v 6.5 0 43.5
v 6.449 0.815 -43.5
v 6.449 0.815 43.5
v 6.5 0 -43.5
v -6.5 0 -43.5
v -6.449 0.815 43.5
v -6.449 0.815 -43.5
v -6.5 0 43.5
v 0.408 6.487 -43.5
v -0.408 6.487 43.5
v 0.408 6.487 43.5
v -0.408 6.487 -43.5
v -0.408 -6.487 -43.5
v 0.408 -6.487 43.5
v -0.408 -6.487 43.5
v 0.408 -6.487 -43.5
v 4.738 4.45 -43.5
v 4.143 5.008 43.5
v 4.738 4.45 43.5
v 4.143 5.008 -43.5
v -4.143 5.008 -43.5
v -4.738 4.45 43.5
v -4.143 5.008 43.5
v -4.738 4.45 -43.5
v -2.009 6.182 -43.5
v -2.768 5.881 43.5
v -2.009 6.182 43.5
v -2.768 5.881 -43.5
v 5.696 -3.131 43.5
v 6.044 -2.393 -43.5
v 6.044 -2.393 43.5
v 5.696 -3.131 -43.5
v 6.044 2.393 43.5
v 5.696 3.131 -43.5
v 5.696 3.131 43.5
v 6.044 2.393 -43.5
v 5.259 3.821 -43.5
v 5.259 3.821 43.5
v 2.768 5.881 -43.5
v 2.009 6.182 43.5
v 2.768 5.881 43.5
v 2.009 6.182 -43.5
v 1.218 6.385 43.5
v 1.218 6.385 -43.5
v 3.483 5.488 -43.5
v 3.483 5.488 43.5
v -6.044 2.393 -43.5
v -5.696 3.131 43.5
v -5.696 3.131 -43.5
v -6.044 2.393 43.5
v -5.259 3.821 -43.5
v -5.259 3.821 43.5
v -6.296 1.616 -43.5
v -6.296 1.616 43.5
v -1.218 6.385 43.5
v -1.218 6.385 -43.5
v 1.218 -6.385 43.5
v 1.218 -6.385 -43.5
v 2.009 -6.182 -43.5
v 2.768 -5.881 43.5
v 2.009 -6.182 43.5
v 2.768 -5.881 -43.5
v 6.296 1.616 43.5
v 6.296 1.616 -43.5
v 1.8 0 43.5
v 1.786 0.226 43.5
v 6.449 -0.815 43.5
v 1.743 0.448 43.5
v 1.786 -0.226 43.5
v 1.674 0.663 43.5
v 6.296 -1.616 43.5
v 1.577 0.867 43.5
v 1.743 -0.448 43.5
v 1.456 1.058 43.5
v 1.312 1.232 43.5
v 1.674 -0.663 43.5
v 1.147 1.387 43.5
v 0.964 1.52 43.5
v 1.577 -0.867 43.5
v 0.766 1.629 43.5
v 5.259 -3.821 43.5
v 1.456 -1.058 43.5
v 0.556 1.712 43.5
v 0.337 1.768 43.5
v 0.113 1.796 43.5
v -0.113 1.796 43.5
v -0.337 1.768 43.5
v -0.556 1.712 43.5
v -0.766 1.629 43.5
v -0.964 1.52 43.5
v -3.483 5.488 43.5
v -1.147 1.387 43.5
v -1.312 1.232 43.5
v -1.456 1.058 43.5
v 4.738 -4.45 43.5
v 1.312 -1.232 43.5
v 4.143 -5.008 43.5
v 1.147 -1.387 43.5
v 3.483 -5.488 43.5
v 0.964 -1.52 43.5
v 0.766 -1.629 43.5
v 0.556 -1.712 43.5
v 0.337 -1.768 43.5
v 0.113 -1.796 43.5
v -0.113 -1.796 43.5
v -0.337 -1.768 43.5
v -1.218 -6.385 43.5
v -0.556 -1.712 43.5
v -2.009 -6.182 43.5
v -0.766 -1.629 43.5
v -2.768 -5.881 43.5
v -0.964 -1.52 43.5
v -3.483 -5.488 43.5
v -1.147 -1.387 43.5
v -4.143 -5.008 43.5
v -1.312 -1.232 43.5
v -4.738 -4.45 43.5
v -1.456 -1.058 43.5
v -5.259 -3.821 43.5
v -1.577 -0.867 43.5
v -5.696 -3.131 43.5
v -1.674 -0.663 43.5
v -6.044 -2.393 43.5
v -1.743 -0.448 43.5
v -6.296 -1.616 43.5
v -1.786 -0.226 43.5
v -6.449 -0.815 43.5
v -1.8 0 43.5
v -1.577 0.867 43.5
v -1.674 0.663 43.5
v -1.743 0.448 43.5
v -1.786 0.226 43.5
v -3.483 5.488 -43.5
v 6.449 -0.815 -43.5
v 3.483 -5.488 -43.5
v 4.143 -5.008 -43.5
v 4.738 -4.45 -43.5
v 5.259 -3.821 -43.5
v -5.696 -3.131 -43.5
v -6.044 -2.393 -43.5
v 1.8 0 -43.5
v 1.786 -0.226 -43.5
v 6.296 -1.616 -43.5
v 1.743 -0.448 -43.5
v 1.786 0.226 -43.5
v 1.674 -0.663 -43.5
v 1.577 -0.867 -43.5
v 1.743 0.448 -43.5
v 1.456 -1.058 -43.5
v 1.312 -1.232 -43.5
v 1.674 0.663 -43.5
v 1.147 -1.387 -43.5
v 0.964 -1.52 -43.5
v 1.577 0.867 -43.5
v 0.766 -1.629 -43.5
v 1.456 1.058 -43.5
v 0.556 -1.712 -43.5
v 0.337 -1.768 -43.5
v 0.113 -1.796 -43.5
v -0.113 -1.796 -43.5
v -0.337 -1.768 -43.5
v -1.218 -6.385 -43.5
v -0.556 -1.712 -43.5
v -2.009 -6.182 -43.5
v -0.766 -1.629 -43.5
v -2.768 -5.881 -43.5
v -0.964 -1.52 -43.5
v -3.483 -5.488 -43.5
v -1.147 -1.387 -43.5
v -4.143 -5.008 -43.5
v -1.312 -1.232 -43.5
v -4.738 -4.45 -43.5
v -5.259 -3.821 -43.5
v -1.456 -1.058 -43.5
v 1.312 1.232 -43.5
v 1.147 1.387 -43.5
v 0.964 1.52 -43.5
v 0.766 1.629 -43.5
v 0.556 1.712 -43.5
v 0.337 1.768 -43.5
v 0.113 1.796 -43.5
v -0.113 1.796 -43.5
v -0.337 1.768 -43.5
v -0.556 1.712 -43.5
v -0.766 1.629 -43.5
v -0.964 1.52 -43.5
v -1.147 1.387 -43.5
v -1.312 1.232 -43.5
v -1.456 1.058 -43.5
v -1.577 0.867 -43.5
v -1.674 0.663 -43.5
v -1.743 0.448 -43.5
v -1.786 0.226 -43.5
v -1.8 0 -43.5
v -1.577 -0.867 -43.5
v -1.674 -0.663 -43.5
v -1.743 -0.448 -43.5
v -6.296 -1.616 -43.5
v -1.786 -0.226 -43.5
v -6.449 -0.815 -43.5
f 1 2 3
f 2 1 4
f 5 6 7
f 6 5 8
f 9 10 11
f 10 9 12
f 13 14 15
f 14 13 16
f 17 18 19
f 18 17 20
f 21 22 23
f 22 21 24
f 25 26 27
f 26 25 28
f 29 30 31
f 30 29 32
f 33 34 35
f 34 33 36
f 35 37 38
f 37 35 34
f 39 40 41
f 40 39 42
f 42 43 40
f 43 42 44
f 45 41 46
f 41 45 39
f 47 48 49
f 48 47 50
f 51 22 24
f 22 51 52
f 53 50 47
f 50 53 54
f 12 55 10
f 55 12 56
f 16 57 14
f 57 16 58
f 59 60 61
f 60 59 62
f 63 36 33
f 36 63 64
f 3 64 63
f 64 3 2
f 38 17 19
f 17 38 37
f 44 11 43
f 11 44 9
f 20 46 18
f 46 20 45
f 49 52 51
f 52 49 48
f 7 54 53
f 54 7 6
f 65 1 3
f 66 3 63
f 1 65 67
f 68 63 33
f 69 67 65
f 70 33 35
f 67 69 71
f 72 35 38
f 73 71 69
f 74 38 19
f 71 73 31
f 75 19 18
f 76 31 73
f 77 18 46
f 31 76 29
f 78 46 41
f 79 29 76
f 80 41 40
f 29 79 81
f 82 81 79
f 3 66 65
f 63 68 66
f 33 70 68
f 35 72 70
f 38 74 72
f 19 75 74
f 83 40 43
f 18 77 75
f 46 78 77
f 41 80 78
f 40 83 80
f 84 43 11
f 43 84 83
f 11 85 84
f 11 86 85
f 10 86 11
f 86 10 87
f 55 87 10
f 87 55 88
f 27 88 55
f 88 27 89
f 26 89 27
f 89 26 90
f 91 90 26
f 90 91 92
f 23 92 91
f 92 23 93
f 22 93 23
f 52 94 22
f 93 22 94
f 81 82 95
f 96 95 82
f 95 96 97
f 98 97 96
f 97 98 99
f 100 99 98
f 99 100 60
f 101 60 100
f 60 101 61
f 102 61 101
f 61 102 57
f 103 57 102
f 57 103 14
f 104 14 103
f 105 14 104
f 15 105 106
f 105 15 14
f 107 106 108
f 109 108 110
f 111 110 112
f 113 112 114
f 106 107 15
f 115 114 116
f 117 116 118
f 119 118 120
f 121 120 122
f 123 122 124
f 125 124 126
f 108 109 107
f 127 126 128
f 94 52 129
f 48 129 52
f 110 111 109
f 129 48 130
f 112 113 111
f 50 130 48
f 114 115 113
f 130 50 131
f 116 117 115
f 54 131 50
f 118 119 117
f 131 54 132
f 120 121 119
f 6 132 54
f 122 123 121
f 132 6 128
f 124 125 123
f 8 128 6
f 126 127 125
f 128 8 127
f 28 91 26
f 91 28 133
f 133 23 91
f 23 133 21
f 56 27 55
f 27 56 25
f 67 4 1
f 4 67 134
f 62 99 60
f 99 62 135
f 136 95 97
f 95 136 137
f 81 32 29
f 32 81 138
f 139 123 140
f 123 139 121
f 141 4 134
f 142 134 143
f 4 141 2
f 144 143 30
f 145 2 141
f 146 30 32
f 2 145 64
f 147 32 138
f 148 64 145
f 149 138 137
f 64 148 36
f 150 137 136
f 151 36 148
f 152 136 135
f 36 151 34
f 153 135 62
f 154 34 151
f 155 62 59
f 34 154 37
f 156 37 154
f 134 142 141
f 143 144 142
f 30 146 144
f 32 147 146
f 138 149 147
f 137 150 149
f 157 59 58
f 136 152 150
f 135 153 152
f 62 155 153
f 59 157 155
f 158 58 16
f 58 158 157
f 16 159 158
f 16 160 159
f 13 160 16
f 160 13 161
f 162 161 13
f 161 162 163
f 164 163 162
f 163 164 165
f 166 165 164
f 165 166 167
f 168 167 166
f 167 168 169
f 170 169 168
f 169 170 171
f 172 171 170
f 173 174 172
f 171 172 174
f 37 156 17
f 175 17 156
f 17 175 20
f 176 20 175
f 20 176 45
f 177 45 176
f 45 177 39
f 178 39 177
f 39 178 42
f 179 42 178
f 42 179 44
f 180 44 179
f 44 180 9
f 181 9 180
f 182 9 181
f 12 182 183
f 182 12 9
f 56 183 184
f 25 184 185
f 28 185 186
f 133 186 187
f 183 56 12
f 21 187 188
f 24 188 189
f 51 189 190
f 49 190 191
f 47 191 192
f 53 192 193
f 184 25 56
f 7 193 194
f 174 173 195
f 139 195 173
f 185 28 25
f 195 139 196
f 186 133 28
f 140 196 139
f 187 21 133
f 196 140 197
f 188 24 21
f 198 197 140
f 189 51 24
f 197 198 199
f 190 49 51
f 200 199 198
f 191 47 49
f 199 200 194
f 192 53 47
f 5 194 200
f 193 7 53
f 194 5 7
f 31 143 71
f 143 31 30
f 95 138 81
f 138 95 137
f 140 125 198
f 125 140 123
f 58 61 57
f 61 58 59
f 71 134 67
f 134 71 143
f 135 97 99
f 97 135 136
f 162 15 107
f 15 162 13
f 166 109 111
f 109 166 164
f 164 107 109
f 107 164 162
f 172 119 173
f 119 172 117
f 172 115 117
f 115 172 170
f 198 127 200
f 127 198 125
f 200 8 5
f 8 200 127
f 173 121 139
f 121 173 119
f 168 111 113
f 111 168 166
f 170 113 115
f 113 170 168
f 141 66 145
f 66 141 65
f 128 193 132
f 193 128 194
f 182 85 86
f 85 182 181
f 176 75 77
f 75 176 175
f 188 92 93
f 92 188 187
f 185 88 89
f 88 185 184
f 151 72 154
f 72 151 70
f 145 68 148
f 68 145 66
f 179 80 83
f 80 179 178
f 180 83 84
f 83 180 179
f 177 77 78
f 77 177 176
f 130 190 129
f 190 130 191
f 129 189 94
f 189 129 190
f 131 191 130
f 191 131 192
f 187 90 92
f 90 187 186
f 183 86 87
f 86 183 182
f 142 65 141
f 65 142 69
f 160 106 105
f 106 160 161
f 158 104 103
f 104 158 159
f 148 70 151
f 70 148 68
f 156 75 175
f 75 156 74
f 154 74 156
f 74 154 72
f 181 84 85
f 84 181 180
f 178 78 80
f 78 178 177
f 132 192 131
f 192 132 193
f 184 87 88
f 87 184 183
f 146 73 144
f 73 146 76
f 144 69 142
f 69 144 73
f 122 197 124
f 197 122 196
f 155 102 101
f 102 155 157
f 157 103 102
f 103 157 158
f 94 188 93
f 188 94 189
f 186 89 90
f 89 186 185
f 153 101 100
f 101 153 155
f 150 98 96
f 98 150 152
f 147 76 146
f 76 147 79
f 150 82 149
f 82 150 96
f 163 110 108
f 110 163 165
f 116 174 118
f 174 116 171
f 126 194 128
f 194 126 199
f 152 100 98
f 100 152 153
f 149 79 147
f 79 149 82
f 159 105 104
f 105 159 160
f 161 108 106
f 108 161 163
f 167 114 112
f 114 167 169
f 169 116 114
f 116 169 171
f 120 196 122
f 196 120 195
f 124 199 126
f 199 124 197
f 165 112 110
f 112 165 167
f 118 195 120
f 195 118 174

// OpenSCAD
$fn = 50;


difference() {
	union() {
		translate(v = [0, 0, -43.5000000000]) {
			cylinder(h = 87, r = 6.5000000000);
		}
	}
	union() {
		translate(v = [0, 0, -100.0000000000]) {
			cylinder(h = 200, r = 1.8000000000);
		}
	}
}
